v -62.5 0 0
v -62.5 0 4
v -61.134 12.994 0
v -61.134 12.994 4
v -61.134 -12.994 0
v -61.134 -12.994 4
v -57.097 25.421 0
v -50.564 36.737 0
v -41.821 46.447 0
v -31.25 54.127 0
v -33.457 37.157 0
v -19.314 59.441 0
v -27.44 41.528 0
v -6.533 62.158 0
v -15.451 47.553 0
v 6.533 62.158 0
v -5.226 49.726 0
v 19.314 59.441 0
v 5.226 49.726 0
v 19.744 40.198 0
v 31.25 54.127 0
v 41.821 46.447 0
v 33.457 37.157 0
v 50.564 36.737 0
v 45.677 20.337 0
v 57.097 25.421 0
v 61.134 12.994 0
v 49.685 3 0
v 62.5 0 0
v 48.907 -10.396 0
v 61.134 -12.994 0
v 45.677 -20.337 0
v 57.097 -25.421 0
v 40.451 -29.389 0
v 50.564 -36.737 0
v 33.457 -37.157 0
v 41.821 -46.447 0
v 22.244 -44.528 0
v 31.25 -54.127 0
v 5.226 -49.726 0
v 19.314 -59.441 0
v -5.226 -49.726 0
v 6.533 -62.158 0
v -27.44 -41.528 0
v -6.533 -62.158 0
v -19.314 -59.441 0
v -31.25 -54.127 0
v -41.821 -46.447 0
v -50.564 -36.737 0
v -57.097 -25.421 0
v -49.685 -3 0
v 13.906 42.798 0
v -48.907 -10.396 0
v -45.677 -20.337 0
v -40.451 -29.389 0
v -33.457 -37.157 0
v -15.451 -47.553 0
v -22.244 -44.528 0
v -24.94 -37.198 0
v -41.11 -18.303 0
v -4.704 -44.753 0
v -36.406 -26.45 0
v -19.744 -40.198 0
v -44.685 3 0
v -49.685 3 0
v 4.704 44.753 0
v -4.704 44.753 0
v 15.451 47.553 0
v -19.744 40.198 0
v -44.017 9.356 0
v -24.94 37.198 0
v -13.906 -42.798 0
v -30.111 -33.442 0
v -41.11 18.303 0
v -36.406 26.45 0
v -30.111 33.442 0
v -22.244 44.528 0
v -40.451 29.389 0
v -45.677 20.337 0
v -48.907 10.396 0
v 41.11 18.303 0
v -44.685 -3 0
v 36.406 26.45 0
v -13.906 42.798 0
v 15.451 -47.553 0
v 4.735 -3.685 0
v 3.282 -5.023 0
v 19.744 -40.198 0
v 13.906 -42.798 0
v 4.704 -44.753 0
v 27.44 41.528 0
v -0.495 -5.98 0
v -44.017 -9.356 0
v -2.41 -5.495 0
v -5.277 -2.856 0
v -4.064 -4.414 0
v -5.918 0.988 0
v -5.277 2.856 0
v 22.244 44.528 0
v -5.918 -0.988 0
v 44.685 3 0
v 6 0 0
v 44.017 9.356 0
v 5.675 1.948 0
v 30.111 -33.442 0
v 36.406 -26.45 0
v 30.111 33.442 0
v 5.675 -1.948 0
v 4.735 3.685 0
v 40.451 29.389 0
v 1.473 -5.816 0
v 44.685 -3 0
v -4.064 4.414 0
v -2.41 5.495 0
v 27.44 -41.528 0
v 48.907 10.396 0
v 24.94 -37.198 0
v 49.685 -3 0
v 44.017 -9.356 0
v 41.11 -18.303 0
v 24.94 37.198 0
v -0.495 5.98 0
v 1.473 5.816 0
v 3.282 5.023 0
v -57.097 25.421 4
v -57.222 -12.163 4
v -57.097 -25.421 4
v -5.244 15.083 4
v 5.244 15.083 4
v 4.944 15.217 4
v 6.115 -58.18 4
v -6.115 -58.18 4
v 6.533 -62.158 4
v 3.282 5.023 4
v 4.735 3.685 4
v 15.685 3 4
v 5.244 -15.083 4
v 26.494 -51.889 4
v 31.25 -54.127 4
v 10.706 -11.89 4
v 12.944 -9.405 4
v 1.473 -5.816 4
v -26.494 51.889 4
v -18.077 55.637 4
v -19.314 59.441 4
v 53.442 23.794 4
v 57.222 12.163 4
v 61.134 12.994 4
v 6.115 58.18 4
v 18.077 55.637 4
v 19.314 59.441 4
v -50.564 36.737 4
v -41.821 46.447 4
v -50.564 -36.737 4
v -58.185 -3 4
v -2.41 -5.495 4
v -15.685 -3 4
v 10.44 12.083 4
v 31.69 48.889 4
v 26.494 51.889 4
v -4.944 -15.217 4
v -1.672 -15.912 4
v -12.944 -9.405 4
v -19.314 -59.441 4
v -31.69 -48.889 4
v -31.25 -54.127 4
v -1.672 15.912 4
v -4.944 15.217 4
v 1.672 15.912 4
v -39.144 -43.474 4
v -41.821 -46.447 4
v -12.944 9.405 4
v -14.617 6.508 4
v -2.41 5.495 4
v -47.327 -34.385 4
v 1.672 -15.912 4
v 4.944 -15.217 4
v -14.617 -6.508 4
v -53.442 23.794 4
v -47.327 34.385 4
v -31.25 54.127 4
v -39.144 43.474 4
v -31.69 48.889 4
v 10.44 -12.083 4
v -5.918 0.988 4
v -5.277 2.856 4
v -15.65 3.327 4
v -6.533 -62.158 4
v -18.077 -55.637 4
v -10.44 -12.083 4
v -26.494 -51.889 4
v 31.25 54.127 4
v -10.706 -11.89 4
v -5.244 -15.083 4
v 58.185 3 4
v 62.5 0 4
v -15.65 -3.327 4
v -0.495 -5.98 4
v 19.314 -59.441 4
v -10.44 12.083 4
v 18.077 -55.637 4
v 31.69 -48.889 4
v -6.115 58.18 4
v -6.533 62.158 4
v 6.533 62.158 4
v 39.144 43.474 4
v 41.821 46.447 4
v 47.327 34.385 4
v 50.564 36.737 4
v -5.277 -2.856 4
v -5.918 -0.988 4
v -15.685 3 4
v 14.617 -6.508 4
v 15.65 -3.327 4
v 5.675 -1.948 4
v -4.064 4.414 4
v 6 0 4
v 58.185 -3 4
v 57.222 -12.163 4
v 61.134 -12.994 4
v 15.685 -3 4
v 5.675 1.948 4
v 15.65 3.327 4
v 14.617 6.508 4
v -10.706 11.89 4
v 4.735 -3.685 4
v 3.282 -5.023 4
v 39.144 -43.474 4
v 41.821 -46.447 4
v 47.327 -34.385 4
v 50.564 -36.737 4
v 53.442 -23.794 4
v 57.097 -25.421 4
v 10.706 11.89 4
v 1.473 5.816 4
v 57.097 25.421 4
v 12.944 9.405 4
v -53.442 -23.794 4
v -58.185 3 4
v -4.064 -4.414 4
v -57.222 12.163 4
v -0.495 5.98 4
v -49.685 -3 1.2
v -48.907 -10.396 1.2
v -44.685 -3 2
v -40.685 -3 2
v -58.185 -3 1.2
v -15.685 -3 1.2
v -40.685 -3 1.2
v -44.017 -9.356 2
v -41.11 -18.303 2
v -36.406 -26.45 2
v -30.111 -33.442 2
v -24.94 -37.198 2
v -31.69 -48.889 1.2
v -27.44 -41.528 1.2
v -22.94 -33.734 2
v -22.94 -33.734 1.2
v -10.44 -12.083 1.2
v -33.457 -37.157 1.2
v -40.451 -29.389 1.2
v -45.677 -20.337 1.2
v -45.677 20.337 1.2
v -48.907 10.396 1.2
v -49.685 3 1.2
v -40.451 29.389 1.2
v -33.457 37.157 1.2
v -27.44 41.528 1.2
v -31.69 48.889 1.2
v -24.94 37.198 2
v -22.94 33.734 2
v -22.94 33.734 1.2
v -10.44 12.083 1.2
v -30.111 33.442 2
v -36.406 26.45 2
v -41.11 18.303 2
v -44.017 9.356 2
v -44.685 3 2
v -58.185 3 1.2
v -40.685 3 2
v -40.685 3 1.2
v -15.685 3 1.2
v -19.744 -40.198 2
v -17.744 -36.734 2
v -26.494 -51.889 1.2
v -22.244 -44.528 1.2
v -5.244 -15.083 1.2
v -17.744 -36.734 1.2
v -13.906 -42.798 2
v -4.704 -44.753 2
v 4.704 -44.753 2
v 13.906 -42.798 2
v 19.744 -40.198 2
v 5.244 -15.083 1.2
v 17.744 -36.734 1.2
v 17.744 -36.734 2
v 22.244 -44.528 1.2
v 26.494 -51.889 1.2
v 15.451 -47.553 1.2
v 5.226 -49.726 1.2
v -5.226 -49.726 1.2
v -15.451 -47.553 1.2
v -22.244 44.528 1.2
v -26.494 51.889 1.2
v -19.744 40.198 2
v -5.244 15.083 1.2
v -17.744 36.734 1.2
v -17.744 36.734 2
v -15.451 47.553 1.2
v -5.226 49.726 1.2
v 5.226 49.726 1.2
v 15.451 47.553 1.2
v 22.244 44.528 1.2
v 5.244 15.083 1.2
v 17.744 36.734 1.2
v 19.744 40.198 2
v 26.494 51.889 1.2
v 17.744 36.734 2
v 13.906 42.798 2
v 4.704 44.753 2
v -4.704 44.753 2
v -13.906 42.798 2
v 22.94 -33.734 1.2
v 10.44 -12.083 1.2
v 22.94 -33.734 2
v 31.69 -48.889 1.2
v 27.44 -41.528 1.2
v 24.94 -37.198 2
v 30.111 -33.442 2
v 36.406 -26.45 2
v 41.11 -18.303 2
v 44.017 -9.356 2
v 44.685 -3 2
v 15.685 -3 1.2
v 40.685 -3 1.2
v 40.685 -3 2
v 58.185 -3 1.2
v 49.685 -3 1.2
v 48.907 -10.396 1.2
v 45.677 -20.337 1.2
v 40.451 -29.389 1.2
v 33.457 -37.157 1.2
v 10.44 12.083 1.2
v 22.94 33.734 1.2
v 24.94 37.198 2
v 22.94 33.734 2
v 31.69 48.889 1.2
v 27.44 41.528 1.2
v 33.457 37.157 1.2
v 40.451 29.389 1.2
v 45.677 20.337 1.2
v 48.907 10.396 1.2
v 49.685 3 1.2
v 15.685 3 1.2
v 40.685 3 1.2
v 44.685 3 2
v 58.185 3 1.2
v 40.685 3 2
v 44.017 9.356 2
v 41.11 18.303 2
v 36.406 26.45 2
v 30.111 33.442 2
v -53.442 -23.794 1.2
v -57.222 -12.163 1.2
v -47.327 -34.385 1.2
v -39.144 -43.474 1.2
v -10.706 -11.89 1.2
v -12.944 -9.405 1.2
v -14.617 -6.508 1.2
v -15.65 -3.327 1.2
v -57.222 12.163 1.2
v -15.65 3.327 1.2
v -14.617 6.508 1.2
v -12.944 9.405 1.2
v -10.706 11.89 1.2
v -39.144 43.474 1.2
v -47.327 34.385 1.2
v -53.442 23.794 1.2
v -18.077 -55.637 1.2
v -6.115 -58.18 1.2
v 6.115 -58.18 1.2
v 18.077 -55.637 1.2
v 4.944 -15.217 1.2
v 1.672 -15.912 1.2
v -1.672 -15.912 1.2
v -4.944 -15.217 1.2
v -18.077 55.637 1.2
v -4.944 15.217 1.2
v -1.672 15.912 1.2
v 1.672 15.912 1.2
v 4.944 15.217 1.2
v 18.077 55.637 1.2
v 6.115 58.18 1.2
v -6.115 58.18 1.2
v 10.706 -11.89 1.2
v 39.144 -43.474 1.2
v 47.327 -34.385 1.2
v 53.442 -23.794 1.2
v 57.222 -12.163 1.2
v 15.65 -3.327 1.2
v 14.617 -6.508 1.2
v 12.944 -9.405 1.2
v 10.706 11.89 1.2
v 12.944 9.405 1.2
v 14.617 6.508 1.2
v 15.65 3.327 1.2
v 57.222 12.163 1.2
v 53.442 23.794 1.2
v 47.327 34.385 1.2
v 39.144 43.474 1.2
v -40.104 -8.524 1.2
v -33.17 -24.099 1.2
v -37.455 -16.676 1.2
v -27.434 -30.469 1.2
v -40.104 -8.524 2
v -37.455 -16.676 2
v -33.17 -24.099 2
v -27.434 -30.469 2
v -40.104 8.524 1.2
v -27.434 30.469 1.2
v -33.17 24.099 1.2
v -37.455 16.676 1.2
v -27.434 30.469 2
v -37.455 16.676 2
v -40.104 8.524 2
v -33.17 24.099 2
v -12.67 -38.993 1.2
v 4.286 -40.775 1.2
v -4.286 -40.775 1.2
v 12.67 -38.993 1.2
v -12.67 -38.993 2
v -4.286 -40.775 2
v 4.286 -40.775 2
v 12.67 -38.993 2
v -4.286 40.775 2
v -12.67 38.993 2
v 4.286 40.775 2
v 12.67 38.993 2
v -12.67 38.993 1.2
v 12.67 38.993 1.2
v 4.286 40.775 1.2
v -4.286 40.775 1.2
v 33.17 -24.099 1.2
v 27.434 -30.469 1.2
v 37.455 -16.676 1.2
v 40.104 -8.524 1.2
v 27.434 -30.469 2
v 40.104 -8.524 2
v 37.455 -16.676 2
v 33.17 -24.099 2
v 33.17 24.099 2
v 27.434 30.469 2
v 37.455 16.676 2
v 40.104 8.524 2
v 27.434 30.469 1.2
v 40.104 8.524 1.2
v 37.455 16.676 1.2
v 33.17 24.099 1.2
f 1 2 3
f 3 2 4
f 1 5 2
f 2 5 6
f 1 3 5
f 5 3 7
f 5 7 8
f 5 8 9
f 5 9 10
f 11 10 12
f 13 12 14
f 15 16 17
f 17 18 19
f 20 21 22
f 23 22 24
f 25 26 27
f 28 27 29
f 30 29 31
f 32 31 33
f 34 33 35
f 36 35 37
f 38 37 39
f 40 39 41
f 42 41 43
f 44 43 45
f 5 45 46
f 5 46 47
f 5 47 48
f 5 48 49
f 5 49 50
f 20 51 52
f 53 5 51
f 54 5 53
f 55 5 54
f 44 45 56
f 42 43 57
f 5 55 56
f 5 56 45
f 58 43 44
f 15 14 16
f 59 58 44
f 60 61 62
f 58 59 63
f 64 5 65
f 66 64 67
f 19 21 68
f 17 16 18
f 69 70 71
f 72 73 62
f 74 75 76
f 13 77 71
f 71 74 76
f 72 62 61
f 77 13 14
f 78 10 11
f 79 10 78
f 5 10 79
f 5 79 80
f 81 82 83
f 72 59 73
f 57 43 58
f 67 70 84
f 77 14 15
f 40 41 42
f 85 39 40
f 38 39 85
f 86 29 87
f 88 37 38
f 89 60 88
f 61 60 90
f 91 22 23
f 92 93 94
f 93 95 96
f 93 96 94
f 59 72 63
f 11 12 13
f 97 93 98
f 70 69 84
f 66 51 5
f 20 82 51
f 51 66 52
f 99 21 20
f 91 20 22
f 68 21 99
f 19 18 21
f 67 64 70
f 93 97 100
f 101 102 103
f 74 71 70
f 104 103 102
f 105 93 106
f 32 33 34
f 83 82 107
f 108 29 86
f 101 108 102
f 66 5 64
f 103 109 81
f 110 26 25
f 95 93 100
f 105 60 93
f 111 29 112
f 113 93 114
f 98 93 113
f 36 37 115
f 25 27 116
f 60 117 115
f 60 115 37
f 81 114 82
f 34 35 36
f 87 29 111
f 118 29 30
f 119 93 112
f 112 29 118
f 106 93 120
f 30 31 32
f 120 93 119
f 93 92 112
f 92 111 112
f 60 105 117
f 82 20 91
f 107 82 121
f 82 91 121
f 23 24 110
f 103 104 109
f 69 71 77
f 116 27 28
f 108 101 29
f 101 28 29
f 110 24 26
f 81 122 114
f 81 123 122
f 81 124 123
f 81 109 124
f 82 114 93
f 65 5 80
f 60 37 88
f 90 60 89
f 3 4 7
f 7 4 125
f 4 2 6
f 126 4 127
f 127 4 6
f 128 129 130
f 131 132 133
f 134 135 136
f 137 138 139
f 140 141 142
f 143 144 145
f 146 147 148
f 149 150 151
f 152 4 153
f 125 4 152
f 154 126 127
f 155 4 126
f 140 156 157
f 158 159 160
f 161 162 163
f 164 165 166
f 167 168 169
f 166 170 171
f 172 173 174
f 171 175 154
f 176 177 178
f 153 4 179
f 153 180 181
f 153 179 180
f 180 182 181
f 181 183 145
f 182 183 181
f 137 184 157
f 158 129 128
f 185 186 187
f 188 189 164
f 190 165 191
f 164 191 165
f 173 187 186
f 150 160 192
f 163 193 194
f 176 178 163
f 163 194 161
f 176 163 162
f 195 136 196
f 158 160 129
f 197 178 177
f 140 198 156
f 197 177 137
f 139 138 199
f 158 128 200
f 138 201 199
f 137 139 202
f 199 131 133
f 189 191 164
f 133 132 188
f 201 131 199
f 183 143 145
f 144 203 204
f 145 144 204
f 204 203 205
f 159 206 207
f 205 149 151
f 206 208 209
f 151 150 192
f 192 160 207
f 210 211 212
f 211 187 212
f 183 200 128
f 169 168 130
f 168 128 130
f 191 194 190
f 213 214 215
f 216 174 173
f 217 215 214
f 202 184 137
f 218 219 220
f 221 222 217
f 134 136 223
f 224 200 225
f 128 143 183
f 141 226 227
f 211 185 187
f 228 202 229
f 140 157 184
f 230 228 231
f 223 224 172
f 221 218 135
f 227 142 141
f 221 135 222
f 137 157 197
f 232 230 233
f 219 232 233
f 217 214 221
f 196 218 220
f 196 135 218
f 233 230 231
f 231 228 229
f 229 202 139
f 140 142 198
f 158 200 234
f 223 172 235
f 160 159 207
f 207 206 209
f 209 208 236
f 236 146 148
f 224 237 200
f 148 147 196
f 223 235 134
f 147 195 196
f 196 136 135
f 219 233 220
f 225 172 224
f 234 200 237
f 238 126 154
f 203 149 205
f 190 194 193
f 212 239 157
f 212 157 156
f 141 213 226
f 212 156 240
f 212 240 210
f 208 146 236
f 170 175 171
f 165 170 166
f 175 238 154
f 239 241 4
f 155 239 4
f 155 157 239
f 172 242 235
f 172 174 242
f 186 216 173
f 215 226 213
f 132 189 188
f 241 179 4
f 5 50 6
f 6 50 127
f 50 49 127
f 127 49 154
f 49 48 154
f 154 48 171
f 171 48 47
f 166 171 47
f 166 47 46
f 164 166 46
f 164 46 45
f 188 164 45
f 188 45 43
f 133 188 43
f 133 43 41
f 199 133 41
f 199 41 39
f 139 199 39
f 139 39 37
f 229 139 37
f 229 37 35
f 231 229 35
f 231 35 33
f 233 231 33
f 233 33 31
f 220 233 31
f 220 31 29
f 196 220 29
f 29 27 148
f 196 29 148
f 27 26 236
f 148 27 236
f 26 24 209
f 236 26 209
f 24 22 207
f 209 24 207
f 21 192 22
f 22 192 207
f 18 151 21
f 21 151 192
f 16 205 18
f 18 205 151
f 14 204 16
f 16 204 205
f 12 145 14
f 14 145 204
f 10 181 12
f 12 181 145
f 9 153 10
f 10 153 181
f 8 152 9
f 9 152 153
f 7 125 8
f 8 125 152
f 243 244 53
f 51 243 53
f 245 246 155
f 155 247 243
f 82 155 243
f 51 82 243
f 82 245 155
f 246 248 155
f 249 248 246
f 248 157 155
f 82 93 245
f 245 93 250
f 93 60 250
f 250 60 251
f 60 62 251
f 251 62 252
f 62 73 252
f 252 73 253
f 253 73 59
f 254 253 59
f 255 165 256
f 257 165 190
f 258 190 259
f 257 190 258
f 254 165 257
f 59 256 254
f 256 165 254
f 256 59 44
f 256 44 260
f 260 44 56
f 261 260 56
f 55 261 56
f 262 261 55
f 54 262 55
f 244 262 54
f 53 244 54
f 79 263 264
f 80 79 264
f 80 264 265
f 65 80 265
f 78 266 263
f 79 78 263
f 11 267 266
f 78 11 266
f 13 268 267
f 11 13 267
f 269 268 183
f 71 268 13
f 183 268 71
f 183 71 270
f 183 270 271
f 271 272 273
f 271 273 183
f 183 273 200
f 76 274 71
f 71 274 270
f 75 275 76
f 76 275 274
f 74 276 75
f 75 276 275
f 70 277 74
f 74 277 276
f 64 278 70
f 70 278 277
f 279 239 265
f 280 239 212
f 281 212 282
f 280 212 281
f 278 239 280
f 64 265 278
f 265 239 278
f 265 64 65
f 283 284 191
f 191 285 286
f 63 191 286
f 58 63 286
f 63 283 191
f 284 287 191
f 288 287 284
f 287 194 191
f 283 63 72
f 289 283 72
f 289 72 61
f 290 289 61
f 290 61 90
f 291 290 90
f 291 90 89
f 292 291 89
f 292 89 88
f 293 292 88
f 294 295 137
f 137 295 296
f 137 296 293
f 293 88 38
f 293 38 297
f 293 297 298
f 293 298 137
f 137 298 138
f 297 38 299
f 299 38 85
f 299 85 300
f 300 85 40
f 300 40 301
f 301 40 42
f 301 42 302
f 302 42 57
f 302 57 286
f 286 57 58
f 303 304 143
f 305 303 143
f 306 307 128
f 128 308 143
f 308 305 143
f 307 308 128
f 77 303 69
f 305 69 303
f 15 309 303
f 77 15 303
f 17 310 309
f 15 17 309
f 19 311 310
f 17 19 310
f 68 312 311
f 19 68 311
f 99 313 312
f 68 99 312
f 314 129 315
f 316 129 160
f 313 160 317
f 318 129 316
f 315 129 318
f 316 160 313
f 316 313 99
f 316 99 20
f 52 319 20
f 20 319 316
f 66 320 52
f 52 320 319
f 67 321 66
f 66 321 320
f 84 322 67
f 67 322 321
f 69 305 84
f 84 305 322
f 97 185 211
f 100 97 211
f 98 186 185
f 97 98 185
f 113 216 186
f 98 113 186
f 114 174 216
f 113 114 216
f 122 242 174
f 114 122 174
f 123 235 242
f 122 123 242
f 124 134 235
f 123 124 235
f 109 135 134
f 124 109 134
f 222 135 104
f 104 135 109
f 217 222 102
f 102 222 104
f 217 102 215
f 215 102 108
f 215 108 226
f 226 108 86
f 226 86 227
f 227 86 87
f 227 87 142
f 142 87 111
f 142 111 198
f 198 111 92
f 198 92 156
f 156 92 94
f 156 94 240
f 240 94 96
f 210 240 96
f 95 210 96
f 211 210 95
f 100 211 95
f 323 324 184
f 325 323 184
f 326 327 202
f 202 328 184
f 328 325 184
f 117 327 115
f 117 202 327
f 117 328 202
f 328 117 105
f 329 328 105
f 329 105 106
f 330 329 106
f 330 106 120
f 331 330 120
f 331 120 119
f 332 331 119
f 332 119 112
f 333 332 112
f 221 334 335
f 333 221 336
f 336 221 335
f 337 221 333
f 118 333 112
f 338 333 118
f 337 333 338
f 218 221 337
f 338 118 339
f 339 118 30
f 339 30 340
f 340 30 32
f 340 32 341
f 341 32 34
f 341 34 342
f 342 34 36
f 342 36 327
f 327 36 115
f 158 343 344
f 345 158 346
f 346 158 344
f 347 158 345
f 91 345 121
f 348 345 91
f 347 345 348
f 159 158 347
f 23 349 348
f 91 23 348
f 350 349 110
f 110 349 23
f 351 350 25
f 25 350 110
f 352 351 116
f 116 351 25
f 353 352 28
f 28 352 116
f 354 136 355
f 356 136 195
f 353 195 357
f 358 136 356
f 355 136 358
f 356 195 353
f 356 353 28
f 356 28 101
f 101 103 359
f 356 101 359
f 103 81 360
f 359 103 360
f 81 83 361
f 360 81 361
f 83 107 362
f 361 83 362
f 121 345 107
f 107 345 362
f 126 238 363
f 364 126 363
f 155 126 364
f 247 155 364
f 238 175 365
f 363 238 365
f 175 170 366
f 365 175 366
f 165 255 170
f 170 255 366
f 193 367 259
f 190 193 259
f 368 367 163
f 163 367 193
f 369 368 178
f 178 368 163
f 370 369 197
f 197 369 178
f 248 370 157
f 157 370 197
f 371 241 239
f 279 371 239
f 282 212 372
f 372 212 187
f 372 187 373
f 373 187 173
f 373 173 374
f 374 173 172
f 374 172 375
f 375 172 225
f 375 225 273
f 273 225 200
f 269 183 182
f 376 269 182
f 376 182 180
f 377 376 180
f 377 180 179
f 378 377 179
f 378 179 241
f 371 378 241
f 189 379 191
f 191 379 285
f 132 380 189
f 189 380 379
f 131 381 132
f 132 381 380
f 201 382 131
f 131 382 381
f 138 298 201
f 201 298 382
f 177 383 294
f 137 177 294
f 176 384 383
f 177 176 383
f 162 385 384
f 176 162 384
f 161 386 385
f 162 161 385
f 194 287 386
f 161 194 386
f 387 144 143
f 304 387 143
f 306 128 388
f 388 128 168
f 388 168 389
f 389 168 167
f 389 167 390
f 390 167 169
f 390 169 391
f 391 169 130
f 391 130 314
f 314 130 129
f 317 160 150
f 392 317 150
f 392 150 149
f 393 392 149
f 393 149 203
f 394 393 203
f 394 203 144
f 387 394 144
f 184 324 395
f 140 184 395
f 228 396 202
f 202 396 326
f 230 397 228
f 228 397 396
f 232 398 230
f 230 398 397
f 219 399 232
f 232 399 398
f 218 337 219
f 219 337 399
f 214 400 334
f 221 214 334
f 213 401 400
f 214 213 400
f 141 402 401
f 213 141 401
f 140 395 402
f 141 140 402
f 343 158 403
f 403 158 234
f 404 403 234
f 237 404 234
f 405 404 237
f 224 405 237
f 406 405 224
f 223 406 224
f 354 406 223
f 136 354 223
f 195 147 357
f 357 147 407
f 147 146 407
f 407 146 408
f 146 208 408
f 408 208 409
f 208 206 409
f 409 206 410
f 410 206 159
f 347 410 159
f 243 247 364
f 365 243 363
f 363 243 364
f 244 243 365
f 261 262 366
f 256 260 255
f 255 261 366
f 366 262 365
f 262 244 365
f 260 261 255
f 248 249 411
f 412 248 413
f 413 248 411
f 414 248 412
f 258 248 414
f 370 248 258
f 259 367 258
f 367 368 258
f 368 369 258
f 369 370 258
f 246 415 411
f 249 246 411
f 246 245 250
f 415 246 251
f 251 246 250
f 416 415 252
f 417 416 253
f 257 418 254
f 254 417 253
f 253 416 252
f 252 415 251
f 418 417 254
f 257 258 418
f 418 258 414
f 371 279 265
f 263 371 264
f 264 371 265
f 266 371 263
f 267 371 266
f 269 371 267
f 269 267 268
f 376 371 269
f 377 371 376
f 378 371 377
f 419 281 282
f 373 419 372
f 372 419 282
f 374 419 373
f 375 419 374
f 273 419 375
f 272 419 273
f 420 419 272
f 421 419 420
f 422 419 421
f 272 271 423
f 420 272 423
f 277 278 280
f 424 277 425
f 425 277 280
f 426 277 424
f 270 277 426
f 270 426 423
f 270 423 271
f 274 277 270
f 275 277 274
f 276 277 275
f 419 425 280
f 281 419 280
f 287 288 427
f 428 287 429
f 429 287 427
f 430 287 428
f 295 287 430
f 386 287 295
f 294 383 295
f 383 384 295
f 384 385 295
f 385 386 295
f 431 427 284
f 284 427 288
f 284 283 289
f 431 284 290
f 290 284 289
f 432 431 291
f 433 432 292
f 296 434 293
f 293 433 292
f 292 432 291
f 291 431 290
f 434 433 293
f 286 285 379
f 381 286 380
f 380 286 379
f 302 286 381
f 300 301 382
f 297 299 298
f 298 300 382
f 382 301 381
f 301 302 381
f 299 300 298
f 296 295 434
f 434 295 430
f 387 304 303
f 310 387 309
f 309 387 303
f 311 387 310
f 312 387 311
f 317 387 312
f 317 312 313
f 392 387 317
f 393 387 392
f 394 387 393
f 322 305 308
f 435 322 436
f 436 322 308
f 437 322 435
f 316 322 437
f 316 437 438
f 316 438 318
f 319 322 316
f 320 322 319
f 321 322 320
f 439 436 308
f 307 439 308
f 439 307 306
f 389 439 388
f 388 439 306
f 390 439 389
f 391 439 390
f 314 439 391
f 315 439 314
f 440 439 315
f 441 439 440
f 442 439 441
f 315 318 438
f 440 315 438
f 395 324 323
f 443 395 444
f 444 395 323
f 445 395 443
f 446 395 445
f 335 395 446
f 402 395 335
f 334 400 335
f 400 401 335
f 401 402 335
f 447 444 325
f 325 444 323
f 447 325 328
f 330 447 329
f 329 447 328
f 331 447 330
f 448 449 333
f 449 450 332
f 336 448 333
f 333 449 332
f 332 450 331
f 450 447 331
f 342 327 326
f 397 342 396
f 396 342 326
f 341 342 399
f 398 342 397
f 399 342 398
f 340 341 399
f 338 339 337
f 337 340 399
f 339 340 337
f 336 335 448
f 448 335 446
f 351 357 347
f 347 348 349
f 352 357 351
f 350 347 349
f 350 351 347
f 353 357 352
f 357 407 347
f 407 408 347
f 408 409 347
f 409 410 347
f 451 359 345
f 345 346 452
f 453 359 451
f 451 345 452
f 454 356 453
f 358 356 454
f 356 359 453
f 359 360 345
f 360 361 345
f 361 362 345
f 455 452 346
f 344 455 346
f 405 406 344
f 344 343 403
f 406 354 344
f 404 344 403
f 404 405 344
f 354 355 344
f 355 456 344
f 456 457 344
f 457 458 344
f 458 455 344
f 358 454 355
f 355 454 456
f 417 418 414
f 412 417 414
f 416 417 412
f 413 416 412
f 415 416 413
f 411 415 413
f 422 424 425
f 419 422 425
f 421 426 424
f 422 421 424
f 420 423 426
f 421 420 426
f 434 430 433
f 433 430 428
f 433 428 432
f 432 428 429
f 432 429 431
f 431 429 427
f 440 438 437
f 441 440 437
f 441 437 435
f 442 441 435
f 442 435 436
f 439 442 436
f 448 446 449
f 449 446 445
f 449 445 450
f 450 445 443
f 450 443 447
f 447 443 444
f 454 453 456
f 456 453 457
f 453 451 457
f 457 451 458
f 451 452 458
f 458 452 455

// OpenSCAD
// file: ../ShapeLibrary/CylinderShell.scad
// Cylinder shell

// Cylinder shell on X-Y plane, centred on Z axis,
// with outside ddameter, shell thickness t and height h
module CylinderShell(d, t, h)
{
  difference()
  {
    cylinder(r=d/2,h=h);
    translate([0,0,-1]) cylinder(r=d/2-t,h=h+2);
  }
}

// CylinderShell(20,2,25);
// main file
// Non-return plate for loo flush
//
// This plate lifts water to start the syphon
// that flushes the loo, then lifts to allow
// water to fill the flush chamber

d1 = 125;    // Outside diameter
d2 = 12;     // Lift shaft diameter
d3 = 90;     // Inner diameter of upflow vent
d4 = 100;    // Outer diameter of upflow vent
w1 = 4;      // Width of rims
w2 = 6;      // Width of spokes
w3 = 10;     // Width of hub
t1 = 1.2;    // Thickness (height) of fill plate
t2 = 4;      // Thickness (height) of main ribs
t3 = 2;      // Thickness (height) of inner rim

use <../ShapeLibrary/CylinderShell.scad>

// CylinderShell(20,2,25);

module RibbedPlate()
{
  CylinderShell(d1,w1,t2);        // outer rim
  CylinderShell(d1,(d1-d4)/2,t1); // outer rim flange
  CylinderShell(d2+w3*2,w3,t2);   // hub
  CylinderShell(d3,w1,t3);        // inner rim
  CylinderShell(d3,(d3-d2)/2,t1); // infill
  for (i = [0:5])
  {
    rotate([0,0,i*60])
      translate([d2/2,-w2/2,0])
        cube(size=[(d1-d2-w1)/2,w2,t2]);
  }
}

RibbedPlate();
